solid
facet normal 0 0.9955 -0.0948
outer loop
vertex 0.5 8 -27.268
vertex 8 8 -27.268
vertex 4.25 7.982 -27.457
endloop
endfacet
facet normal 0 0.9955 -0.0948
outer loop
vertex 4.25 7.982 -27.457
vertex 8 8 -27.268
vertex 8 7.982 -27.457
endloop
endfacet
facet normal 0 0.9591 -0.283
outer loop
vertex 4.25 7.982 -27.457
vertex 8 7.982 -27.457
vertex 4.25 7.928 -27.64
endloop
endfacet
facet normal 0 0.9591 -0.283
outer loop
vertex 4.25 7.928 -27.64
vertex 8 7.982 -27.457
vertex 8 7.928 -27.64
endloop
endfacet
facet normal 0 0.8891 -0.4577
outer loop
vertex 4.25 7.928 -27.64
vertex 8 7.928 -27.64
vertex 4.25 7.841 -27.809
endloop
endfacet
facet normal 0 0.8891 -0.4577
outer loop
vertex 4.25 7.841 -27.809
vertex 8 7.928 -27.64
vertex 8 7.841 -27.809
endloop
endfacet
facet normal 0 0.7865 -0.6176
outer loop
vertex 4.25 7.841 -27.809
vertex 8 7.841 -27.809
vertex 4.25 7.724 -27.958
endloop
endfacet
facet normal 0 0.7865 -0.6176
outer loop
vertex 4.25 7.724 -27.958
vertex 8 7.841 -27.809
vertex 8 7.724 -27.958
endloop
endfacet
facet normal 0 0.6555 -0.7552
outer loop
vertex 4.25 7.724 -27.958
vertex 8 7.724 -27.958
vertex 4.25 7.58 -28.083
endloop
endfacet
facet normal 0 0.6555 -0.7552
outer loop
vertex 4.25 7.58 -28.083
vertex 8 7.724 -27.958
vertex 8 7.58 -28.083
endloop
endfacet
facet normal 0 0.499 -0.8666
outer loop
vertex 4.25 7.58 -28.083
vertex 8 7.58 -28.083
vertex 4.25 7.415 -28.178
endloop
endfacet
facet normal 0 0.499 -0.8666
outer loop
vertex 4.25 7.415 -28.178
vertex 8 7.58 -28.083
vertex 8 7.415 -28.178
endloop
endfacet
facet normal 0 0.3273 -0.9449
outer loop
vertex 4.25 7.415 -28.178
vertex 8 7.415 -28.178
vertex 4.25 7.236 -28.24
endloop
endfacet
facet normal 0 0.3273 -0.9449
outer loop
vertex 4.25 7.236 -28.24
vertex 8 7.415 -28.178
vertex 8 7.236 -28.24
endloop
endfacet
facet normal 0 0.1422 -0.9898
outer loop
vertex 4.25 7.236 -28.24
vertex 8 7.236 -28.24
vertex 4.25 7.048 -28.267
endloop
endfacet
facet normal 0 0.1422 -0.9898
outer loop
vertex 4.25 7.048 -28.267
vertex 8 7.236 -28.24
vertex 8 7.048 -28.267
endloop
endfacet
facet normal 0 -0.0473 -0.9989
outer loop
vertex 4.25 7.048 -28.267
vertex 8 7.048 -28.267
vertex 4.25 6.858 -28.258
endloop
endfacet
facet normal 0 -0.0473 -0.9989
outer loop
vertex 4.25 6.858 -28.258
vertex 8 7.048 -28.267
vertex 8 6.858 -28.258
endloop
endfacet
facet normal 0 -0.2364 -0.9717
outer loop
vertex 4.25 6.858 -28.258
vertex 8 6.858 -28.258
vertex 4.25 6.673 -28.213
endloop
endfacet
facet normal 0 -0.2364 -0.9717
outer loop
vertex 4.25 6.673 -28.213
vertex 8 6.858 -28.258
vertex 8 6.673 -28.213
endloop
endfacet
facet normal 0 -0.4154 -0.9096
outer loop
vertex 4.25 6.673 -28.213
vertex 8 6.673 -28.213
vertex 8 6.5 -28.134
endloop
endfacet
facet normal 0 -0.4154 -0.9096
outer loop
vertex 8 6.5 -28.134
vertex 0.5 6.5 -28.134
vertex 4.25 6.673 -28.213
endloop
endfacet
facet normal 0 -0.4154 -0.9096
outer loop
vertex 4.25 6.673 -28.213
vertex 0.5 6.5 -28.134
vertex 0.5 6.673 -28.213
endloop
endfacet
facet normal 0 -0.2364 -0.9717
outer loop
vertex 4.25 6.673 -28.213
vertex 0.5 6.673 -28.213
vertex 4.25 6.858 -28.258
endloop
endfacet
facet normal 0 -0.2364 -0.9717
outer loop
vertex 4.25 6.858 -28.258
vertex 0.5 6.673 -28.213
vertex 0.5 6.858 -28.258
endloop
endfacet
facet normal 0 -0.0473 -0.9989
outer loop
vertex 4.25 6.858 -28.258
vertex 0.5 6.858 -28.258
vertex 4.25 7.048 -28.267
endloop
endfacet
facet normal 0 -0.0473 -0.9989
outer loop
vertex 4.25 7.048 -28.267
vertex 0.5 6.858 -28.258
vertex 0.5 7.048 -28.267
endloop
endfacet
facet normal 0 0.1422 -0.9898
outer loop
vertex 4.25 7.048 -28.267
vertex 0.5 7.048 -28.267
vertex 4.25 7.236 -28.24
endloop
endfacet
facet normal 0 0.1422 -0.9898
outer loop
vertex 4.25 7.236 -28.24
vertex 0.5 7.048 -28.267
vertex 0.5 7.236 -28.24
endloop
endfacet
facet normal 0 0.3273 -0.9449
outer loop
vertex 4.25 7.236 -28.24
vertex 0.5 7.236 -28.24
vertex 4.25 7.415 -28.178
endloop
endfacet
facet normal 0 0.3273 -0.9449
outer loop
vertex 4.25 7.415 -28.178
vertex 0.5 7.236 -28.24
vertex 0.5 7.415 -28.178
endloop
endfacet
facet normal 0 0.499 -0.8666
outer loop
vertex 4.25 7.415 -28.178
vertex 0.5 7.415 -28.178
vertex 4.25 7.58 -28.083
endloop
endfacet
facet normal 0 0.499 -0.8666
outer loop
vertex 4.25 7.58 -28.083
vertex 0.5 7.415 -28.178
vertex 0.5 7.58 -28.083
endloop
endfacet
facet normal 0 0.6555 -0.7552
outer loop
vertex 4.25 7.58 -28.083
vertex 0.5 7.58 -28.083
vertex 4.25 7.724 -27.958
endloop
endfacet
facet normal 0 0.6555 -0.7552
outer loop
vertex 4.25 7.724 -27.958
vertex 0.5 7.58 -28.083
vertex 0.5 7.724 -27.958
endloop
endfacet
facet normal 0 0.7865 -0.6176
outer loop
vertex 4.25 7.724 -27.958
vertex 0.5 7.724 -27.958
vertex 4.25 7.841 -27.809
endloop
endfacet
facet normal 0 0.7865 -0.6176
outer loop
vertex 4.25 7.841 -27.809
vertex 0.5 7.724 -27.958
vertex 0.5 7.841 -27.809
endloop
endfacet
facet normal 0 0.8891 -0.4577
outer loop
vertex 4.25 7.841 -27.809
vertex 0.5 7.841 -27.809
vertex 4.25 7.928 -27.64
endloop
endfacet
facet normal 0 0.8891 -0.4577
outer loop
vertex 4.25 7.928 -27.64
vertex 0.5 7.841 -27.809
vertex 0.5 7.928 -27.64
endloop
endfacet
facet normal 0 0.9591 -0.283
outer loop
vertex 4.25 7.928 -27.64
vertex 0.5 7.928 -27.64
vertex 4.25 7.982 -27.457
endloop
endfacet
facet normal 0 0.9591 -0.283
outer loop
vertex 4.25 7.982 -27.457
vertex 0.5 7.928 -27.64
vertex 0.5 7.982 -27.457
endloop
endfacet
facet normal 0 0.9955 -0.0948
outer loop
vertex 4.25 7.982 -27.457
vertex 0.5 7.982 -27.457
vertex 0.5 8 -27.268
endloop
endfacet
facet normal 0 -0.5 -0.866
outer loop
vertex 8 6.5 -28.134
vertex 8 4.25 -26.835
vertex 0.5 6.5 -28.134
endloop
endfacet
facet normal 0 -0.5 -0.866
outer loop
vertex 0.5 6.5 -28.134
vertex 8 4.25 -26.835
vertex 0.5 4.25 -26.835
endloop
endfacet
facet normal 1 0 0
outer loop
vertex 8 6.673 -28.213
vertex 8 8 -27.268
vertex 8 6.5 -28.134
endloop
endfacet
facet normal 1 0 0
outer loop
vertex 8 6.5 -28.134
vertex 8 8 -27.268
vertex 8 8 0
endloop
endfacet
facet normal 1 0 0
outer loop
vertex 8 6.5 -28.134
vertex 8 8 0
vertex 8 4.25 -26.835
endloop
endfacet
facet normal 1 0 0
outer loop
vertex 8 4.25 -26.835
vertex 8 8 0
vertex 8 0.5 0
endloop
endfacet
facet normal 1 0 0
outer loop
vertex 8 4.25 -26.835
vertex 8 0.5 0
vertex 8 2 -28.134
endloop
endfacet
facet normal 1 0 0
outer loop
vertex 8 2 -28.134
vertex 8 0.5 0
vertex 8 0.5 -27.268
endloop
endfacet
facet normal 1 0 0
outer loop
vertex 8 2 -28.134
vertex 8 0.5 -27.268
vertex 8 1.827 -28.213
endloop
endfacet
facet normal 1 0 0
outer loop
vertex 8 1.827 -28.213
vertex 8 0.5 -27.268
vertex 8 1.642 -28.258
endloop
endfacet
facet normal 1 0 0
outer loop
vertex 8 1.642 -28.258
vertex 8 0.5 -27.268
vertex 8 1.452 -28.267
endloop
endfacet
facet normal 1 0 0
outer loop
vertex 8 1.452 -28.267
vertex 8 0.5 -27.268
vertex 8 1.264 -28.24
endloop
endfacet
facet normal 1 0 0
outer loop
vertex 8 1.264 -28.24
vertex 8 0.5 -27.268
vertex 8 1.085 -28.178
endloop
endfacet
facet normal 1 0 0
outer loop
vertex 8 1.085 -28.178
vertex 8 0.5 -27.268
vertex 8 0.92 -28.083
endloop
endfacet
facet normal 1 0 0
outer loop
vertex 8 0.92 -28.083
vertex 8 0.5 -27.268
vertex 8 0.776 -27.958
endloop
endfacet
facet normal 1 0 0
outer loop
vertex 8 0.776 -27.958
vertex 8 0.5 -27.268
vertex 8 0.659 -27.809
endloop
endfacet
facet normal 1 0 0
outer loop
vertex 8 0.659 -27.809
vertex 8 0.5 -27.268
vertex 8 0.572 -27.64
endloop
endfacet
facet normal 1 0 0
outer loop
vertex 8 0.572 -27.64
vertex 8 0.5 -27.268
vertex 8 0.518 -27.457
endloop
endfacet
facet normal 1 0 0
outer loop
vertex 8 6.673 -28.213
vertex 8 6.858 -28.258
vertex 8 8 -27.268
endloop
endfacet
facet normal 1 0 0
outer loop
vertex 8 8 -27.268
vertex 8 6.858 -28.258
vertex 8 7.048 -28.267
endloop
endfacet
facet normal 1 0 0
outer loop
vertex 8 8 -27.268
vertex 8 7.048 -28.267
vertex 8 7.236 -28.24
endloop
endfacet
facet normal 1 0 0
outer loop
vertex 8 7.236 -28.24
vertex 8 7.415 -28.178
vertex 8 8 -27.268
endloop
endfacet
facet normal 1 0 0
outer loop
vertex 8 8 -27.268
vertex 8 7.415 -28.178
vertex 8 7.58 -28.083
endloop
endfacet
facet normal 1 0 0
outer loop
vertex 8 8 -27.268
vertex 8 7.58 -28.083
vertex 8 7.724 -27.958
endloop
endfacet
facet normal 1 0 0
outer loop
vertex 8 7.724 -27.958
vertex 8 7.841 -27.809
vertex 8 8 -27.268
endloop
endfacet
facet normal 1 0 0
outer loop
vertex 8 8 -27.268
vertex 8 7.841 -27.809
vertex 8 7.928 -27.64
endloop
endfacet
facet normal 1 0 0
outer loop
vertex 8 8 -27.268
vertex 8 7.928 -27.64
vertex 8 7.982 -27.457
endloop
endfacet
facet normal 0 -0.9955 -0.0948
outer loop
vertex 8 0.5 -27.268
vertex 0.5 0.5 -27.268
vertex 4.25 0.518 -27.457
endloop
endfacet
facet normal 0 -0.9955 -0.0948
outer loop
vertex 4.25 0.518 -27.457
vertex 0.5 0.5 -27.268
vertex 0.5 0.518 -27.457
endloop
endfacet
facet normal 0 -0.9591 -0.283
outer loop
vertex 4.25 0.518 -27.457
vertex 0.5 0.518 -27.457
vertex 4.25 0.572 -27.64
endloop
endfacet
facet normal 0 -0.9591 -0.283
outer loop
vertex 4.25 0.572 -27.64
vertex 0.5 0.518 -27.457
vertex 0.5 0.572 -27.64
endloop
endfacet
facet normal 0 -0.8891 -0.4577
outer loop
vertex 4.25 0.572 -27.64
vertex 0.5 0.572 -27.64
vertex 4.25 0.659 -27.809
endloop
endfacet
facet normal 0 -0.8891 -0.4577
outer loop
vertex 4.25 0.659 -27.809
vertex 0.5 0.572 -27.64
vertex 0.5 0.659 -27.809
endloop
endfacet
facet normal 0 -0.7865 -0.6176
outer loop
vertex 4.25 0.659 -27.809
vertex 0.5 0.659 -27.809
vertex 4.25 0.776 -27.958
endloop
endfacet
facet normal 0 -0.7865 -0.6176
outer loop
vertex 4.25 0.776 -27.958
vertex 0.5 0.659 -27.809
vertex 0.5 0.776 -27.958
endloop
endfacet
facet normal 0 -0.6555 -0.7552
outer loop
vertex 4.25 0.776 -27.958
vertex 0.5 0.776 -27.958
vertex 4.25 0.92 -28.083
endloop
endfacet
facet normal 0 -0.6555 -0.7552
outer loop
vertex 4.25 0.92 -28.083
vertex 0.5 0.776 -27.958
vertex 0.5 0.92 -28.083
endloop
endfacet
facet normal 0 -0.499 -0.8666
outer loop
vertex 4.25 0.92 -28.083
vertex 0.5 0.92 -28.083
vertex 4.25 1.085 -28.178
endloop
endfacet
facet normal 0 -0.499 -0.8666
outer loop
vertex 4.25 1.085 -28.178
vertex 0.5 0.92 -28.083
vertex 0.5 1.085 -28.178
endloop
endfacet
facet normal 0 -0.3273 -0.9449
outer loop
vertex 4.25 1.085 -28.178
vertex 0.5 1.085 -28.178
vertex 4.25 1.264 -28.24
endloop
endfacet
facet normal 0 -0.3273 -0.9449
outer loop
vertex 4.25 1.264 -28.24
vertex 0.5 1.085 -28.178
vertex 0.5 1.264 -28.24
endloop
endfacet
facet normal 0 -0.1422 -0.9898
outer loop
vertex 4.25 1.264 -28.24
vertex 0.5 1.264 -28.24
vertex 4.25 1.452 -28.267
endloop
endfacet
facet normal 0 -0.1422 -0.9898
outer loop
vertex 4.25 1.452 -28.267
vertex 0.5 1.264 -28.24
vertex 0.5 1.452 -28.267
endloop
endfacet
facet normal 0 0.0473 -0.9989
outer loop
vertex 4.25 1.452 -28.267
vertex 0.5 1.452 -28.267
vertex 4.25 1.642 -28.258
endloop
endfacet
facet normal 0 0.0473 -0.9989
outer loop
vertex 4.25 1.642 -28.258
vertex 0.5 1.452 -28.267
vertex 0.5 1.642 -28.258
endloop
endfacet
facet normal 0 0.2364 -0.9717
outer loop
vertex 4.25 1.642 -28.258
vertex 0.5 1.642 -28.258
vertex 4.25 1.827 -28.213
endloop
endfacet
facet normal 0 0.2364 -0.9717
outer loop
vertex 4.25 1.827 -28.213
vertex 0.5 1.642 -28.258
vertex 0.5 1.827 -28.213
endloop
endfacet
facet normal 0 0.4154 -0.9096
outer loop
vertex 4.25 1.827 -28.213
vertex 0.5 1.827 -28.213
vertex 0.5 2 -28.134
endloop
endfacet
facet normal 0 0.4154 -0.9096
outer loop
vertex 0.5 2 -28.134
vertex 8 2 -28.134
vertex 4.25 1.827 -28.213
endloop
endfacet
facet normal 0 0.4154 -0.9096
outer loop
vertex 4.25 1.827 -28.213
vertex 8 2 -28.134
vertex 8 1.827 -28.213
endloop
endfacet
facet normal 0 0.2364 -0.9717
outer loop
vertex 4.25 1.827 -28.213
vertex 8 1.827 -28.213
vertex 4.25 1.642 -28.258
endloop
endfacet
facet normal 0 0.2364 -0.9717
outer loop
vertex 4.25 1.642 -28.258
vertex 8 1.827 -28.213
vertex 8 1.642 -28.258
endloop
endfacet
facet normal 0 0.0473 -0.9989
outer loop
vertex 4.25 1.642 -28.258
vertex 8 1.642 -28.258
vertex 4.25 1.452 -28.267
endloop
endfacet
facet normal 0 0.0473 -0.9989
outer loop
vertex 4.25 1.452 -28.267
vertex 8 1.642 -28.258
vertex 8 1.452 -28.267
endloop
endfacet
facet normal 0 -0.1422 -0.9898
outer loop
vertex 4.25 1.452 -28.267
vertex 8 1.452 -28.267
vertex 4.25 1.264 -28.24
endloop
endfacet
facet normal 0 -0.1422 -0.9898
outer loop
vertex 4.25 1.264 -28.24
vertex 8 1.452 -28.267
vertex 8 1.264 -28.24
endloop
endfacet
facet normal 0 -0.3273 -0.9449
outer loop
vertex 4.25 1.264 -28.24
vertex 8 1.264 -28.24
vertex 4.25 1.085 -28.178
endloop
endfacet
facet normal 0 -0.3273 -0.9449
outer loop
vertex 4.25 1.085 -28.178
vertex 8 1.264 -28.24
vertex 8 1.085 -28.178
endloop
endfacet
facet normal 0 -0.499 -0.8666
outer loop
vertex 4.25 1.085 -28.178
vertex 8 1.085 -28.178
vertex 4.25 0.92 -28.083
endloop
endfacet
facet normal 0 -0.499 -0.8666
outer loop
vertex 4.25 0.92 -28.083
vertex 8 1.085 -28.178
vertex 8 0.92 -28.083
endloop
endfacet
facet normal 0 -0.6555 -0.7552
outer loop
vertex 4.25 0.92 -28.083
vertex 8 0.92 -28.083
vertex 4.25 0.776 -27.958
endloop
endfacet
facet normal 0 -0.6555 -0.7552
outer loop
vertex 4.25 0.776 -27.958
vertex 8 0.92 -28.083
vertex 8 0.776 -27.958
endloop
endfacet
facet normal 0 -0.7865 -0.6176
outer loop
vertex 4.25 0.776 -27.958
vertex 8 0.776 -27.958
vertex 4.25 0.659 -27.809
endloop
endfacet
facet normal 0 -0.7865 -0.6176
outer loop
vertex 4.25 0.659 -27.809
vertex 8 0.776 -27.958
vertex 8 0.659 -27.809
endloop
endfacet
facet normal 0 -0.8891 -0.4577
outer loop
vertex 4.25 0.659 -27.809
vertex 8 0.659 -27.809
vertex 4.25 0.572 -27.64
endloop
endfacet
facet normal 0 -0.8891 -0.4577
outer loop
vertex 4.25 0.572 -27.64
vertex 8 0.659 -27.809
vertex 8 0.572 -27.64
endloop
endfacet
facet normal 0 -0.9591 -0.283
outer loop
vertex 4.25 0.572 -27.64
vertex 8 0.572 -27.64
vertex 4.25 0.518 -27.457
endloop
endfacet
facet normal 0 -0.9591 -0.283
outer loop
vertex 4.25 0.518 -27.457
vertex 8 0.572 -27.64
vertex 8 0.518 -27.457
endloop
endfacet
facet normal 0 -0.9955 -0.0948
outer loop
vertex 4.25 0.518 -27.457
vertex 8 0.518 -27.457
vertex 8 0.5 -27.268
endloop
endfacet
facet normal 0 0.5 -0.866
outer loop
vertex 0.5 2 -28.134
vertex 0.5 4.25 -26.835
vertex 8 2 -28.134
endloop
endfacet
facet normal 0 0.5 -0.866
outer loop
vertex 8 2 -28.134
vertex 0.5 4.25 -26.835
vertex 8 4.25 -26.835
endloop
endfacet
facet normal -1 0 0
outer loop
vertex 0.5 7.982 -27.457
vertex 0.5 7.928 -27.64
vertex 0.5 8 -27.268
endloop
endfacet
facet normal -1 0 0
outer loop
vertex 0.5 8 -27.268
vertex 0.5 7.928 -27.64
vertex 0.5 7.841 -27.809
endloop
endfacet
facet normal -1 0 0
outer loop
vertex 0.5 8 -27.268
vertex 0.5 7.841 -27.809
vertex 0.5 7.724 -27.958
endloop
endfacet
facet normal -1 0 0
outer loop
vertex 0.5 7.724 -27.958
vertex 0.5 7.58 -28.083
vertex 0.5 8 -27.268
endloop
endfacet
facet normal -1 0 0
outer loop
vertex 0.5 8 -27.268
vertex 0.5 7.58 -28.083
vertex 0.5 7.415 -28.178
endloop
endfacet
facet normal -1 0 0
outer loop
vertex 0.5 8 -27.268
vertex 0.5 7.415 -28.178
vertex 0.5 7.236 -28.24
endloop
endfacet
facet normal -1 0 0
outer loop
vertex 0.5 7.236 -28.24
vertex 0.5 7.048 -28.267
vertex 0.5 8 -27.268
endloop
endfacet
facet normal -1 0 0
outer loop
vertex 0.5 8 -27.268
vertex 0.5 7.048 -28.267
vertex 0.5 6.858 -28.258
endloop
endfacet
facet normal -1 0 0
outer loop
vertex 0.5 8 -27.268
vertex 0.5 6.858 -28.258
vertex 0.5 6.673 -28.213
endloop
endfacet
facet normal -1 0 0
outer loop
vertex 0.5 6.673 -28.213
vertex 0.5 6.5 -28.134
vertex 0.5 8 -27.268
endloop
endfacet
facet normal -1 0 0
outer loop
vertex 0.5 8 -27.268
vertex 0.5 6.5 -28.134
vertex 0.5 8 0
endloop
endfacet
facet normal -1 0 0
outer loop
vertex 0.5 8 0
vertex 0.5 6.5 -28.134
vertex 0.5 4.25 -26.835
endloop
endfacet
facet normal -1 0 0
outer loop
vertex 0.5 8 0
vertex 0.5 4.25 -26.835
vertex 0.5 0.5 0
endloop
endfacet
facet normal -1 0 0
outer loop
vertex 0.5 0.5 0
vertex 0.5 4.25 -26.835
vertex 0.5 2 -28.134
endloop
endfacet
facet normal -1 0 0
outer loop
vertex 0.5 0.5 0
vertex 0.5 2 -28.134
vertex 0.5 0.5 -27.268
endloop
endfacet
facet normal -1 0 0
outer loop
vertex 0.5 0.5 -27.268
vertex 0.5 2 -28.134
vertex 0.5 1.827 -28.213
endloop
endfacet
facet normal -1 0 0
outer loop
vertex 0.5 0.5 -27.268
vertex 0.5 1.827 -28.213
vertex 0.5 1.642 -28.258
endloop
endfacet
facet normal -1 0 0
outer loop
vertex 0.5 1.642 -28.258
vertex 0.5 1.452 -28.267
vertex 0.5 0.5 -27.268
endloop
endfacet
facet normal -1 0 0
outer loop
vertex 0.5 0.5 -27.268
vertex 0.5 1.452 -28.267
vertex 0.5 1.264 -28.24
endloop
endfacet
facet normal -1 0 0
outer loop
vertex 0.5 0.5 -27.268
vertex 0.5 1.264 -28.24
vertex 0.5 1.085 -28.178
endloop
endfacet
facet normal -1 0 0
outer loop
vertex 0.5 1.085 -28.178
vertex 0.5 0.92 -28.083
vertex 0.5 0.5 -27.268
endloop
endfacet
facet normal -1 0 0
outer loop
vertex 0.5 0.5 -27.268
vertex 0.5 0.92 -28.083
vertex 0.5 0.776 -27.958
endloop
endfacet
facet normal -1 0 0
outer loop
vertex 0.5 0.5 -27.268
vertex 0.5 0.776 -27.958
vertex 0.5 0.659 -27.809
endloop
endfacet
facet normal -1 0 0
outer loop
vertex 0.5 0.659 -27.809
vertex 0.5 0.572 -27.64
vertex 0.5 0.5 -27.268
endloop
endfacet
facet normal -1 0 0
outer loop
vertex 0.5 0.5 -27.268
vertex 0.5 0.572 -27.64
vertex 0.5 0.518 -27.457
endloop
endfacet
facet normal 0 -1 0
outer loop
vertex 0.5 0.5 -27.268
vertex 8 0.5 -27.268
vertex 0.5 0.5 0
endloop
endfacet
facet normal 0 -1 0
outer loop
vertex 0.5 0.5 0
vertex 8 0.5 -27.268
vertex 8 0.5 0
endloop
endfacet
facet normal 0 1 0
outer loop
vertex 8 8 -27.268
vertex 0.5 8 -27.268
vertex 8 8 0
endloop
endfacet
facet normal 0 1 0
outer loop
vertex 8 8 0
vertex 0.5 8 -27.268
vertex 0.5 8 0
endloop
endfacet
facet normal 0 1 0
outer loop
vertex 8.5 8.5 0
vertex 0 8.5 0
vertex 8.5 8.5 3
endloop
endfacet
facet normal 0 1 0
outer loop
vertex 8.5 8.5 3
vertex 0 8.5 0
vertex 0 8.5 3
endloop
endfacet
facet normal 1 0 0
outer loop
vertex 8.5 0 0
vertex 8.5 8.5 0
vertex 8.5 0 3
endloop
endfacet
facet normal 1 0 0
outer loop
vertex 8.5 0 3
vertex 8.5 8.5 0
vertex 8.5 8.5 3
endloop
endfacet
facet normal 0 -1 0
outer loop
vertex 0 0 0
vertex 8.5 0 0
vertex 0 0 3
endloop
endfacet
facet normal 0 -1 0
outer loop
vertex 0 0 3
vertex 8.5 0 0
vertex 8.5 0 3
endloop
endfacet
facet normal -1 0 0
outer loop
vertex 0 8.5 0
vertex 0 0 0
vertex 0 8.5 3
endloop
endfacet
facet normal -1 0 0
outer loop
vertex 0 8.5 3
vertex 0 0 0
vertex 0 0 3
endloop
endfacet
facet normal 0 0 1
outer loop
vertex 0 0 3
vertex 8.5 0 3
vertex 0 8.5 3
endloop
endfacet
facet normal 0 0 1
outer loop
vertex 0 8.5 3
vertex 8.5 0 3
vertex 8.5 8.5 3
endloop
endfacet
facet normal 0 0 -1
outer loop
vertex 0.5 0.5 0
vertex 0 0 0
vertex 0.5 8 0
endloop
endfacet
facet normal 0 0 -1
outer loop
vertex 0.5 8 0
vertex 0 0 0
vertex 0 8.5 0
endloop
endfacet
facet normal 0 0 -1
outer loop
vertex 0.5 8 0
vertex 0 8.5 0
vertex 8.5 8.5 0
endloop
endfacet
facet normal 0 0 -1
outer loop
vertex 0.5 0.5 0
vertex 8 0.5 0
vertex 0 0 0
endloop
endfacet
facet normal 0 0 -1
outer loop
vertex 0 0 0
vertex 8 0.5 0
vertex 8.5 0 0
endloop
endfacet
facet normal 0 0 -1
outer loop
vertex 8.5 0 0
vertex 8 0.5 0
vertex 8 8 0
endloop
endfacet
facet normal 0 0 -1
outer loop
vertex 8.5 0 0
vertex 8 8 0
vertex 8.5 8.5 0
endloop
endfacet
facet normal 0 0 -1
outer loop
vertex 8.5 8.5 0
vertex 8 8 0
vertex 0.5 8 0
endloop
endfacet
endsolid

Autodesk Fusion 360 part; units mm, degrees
sketch "Sketch1" plane through (0, 0, 0) normal (0, 0, 1) x (1, 0, 0)
  line L0 (0, 0) -> (8.5, 0)
  line L1 (8.5, 0) -> (8.5, 8.5)
  line L2 (8.5, 8.5) -> (0, 8.5)
  line L3 (0, 8.5) -> (0, 0)
  dimension "d1" = 8.5
extrude "Extrude1" add sketch "Sketch1" along normal blind 3
sketch "Sketch2" plane through (0, 0, 0) normal (0, 0, -1) x (1, 0, 0)
  line L0 (0, 0) -> (0, -8.5)
  line L1 (0, -8.5) -> (8.5, -8.5)
  line L2 (8.5, -8.5) -> (8.5, 0)
  line L3 (8.5, 0) -> (0, 0)
  line L4 (0.5, -0.5) -> (8, -0.5)
  line L5 (8, -0.5) -> (8, -8)
  line L6 (8, -8) -> (0.5, -8)
  line L7 (0.5, -8) -> (0.5, -0.5)
  line L8 (0.5, -0.5) -> (8, -8) construction
  line L9 (8.5, 0) -> (0, -8.5) construction
  dimension "d4" = 7.5
extrude "Extrude2" add sketch "Sketch2" along normal blind 29 contours L4 L5 L6 L7
sketch "Sketch3" plane through (8, 0, 0) normal (1, 0, 0) x (0, 1, 0)
  line L0 (8, 0) -> (0.5, 0)
  line L1 (0.5, 0) -> (0.5, -29)
  line L2 (0.5, -29) -> (8, -29)
  line L3 (8, -29) -> (8, 0)
  line L4 (0.5, -29) -> (4.25, -26.8349)
  line L5 (4.25, -26.8349) -> (8, -29)
  line L6 (8, -29) -> (0.5, -29)
  dimension "d7" = 120
extrude "Extrude3" cut sketch "Sketch3" against normal through all contours L2 L4 L5 L6
fillet "Fillet1" radius 1 2 edges at (4.25, 0.5, -29) (4.25, 8, -29)
